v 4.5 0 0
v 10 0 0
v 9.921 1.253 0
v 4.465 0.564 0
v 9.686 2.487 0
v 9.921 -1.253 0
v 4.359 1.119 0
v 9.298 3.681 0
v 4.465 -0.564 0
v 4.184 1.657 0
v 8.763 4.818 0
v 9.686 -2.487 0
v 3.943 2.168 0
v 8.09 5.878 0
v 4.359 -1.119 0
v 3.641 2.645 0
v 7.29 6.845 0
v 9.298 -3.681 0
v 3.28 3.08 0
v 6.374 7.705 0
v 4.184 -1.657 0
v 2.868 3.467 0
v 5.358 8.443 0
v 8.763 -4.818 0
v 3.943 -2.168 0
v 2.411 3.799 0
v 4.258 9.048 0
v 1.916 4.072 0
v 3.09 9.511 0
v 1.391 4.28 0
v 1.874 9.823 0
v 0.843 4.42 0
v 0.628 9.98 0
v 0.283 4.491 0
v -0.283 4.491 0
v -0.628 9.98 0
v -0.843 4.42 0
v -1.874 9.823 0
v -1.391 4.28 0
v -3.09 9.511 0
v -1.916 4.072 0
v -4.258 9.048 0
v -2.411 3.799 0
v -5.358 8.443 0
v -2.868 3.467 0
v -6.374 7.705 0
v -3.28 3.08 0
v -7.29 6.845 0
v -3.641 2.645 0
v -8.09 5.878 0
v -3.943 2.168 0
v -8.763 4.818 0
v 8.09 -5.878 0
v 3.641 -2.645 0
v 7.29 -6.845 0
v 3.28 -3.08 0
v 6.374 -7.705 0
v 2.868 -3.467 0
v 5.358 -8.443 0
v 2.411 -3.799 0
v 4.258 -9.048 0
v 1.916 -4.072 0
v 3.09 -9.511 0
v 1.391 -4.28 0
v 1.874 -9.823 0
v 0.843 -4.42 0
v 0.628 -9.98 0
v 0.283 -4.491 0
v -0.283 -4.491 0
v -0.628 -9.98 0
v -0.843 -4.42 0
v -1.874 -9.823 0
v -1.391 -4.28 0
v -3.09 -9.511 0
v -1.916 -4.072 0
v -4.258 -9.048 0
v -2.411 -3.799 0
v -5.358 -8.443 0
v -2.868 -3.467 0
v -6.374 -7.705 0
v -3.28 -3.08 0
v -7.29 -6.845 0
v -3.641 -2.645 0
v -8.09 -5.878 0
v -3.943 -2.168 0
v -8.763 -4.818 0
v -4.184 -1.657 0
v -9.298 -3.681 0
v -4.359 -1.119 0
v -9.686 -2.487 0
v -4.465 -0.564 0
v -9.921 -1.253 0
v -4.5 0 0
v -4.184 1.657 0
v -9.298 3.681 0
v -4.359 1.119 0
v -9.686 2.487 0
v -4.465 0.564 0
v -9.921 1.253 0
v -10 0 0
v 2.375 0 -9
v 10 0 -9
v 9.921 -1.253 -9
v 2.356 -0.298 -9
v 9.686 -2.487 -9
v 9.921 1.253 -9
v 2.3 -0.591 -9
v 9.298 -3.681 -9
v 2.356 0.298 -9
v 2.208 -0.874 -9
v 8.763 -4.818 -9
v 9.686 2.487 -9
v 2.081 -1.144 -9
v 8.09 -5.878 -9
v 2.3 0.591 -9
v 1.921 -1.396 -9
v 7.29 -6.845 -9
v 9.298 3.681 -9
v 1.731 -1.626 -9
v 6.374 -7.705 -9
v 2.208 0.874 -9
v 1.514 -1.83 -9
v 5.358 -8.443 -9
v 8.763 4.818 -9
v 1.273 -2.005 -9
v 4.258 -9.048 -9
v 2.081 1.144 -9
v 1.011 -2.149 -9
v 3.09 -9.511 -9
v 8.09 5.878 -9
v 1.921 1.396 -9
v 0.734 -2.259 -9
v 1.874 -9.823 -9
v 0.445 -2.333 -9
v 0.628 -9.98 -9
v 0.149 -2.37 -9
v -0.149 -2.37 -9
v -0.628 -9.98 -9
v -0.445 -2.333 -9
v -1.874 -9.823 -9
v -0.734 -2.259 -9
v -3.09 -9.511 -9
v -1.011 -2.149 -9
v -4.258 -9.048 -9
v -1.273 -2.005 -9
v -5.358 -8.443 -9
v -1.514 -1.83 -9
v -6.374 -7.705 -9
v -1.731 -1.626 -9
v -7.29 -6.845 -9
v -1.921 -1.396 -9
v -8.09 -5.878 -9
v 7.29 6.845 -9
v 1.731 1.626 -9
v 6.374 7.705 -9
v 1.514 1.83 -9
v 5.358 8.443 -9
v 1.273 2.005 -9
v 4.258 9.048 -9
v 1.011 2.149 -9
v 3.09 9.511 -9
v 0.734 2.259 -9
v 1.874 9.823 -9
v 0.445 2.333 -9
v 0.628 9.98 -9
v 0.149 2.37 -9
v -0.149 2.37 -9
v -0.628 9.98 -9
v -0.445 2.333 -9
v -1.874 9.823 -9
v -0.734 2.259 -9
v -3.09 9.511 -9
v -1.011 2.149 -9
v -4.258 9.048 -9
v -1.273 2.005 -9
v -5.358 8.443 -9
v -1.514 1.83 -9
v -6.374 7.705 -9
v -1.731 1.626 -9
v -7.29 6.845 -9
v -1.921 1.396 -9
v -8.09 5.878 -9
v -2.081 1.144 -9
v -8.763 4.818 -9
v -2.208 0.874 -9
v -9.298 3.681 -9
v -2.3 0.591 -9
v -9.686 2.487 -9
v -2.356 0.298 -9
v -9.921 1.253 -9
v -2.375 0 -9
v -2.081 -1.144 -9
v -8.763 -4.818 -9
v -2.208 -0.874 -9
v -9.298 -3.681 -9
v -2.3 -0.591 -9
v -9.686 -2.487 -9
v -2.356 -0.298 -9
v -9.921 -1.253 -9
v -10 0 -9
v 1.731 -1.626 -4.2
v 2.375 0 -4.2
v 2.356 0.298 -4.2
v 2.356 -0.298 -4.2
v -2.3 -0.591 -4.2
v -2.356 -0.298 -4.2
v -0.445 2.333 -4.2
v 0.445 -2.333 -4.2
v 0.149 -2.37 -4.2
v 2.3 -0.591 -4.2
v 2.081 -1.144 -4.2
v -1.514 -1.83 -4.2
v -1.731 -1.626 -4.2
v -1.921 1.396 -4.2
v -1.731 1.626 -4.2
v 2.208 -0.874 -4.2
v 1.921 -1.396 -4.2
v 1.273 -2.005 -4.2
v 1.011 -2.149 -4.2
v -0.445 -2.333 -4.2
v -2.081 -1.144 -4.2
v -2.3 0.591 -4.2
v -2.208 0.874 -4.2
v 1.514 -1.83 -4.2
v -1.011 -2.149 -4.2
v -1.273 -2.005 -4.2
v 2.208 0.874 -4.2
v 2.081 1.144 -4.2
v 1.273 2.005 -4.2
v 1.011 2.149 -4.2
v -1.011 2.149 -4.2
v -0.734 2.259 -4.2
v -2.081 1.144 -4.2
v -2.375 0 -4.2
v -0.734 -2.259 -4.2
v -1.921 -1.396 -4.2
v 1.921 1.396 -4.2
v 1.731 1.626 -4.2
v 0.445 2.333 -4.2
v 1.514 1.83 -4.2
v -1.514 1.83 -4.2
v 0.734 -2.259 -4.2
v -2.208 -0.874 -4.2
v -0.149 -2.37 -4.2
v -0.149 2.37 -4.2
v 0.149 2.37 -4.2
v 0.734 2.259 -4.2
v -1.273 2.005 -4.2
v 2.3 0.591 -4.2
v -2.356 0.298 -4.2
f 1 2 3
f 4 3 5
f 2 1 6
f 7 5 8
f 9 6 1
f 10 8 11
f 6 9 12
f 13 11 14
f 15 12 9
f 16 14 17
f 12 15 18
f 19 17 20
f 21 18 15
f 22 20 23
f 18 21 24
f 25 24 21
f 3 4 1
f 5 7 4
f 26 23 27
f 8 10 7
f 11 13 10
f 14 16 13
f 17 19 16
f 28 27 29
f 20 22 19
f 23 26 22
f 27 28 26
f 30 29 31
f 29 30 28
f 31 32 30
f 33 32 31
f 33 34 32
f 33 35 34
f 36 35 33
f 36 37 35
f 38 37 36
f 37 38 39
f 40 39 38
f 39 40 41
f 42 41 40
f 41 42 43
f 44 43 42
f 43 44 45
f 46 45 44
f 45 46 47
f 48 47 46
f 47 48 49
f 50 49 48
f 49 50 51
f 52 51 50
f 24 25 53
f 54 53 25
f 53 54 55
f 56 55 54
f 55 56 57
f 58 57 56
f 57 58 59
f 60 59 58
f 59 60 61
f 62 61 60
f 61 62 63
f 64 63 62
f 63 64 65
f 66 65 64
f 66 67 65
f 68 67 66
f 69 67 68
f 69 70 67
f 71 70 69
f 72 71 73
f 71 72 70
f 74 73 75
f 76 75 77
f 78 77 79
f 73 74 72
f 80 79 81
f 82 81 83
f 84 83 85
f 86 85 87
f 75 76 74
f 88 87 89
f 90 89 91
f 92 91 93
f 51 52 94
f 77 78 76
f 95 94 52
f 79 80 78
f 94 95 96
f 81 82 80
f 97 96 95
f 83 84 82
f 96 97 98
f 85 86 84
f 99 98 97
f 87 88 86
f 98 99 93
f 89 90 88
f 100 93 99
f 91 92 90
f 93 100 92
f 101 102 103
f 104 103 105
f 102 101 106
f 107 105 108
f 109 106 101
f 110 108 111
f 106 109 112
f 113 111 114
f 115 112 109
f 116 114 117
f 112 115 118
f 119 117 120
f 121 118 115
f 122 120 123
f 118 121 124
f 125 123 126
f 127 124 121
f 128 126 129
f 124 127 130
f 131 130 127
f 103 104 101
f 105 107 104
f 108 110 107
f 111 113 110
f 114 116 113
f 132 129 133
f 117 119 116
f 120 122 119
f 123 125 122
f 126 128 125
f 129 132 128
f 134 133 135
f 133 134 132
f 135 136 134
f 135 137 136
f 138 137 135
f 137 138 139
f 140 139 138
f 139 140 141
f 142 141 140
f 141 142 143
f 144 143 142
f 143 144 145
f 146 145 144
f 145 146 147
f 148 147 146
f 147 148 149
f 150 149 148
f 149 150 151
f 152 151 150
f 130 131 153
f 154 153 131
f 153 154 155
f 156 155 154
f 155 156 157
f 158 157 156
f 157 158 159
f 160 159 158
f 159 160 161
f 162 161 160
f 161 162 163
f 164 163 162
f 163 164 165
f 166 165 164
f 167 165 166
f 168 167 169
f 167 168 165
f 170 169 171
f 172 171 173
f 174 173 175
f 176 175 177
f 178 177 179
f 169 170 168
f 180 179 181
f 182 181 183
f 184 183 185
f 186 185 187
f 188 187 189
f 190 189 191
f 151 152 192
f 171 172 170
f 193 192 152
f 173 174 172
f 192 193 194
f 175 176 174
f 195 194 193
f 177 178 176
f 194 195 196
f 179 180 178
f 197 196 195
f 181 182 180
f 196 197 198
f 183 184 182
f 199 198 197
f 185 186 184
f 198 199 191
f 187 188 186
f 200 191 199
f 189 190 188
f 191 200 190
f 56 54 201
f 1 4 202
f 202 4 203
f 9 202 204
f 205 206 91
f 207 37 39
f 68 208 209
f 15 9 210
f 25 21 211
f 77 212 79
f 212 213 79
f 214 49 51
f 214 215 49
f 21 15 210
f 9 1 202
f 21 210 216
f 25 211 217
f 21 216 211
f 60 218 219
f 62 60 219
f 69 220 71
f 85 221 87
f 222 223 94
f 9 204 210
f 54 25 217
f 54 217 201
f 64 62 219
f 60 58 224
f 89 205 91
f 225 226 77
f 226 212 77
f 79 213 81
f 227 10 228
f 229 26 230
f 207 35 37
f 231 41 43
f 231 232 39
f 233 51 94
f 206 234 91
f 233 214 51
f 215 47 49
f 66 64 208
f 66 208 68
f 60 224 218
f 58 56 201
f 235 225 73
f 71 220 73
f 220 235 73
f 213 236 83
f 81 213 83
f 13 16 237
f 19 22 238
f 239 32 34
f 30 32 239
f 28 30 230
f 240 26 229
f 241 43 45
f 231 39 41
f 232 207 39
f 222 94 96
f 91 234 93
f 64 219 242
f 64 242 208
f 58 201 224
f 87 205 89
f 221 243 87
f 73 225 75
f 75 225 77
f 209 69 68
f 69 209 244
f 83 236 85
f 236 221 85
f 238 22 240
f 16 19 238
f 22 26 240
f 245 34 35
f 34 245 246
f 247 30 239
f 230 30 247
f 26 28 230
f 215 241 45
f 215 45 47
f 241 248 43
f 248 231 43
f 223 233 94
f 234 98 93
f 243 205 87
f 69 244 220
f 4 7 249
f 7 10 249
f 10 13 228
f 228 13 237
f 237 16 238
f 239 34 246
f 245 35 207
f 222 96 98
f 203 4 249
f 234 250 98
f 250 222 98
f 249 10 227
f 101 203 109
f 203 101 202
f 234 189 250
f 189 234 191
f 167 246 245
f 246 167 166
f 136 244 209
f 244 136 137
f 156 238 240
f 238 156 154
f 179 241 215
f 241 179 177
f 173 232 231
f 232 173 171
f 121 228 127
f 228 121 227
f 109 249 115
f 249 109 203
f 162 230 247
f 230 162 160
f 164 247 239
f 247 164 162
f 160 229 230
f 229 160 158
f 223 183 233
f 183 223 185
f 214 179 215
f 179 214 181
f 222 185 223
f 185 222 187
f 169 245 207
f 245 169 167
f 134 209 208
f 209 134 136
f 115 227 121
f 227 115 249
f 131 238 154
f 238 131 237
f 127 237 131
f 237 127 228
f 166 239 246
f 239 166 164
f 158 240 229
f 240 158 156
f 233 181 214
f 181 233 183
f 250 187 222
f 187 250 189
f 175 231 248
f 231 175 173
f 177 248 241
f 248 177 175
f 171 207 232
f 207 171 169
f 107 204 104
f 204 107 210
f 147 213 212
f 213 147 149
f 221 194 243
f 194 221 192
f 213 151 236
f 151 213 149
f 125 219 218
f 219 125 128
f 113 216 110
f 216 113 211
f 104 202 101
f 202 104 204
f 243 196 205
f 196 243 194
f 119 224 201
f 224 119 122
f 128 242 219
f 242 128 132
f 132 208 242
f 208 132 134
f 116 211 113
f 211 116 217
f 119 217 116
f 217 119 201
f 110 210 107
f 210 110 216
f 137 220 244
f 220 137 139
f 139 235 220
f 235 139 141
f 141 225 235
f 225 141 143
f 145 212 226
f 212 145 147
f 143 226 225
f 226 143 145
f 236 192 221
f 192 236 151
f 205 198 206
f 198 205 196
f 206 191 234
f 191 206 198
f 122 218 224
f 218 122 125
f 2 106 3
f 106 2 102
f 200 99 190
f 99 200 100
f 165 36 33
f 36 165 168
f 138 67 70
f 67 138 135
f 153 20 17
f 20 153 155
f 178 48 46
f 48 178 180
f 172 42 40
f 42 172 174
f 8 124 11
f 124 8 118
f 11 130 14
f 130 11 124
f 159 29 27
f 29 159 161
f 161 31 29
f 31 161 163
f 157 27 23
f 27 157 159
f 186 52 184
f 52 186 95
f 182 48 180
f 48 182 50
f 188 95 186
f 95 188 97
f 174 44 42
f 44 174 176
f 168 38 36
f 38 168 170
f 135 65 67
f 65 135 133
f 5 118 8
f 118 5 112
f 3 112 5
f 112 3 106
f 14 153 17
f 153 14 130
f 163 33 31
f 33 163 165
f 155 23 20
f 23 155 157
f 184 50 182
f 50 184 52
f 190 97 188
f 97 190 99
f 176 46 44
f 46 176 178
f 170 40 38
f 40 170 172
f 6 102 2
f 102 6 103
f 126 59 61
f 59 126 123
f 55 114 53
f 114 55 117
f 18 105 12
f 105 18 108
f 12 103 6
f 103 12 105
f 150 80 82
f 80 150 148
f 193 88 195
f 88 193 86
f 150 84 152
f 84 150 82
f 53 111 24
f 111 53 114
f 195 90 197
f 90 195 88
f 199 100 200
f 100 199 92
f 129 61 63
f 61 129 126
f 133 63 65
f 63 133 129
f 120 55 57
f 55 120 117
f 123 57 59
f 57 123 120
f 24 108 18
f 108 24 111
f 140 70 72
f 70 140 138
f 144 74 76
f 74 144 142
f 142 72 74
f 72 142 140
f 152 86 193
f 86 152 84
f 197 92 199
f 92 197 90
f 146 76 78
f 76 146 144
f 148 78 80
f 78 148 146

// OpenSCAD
$fn = 50;


difference() {
	union() {
		translate(v = [0, 0, -9.0000000000]) {
			cylinder(h = 9, r = 10.0000000000);
		}
		cylinder(h = 0, r = 20.0000000000);
	}
	union() {
		translate(v = [0, 0, 0]) {
			rotate(a = [0, 0, 0]) {
				difference() {
					union() {
						#translate(v = [0, 0, -9.0000000000]) {
							cylinder(h = 9, r = 2.2500000000);
						}
						#translate(v = [0, 0, -4.2000000000]) {
							cylinder(h = 4.2000000000, r = 10.0000000000, r1 = 2.3750000000, r2 = 4.5000000000);
						}
						#translate(v = [0, 0, -9.0000000000]) {
							cylinder(h = 9, r = 2.3750000000);
						}
						#translate(v = [0, 0, -9.0000000000]) {
							cylinder(h = 9, r = 2.2500000000);
						}
					}
					union();
				}
			}
		}
	}
}
